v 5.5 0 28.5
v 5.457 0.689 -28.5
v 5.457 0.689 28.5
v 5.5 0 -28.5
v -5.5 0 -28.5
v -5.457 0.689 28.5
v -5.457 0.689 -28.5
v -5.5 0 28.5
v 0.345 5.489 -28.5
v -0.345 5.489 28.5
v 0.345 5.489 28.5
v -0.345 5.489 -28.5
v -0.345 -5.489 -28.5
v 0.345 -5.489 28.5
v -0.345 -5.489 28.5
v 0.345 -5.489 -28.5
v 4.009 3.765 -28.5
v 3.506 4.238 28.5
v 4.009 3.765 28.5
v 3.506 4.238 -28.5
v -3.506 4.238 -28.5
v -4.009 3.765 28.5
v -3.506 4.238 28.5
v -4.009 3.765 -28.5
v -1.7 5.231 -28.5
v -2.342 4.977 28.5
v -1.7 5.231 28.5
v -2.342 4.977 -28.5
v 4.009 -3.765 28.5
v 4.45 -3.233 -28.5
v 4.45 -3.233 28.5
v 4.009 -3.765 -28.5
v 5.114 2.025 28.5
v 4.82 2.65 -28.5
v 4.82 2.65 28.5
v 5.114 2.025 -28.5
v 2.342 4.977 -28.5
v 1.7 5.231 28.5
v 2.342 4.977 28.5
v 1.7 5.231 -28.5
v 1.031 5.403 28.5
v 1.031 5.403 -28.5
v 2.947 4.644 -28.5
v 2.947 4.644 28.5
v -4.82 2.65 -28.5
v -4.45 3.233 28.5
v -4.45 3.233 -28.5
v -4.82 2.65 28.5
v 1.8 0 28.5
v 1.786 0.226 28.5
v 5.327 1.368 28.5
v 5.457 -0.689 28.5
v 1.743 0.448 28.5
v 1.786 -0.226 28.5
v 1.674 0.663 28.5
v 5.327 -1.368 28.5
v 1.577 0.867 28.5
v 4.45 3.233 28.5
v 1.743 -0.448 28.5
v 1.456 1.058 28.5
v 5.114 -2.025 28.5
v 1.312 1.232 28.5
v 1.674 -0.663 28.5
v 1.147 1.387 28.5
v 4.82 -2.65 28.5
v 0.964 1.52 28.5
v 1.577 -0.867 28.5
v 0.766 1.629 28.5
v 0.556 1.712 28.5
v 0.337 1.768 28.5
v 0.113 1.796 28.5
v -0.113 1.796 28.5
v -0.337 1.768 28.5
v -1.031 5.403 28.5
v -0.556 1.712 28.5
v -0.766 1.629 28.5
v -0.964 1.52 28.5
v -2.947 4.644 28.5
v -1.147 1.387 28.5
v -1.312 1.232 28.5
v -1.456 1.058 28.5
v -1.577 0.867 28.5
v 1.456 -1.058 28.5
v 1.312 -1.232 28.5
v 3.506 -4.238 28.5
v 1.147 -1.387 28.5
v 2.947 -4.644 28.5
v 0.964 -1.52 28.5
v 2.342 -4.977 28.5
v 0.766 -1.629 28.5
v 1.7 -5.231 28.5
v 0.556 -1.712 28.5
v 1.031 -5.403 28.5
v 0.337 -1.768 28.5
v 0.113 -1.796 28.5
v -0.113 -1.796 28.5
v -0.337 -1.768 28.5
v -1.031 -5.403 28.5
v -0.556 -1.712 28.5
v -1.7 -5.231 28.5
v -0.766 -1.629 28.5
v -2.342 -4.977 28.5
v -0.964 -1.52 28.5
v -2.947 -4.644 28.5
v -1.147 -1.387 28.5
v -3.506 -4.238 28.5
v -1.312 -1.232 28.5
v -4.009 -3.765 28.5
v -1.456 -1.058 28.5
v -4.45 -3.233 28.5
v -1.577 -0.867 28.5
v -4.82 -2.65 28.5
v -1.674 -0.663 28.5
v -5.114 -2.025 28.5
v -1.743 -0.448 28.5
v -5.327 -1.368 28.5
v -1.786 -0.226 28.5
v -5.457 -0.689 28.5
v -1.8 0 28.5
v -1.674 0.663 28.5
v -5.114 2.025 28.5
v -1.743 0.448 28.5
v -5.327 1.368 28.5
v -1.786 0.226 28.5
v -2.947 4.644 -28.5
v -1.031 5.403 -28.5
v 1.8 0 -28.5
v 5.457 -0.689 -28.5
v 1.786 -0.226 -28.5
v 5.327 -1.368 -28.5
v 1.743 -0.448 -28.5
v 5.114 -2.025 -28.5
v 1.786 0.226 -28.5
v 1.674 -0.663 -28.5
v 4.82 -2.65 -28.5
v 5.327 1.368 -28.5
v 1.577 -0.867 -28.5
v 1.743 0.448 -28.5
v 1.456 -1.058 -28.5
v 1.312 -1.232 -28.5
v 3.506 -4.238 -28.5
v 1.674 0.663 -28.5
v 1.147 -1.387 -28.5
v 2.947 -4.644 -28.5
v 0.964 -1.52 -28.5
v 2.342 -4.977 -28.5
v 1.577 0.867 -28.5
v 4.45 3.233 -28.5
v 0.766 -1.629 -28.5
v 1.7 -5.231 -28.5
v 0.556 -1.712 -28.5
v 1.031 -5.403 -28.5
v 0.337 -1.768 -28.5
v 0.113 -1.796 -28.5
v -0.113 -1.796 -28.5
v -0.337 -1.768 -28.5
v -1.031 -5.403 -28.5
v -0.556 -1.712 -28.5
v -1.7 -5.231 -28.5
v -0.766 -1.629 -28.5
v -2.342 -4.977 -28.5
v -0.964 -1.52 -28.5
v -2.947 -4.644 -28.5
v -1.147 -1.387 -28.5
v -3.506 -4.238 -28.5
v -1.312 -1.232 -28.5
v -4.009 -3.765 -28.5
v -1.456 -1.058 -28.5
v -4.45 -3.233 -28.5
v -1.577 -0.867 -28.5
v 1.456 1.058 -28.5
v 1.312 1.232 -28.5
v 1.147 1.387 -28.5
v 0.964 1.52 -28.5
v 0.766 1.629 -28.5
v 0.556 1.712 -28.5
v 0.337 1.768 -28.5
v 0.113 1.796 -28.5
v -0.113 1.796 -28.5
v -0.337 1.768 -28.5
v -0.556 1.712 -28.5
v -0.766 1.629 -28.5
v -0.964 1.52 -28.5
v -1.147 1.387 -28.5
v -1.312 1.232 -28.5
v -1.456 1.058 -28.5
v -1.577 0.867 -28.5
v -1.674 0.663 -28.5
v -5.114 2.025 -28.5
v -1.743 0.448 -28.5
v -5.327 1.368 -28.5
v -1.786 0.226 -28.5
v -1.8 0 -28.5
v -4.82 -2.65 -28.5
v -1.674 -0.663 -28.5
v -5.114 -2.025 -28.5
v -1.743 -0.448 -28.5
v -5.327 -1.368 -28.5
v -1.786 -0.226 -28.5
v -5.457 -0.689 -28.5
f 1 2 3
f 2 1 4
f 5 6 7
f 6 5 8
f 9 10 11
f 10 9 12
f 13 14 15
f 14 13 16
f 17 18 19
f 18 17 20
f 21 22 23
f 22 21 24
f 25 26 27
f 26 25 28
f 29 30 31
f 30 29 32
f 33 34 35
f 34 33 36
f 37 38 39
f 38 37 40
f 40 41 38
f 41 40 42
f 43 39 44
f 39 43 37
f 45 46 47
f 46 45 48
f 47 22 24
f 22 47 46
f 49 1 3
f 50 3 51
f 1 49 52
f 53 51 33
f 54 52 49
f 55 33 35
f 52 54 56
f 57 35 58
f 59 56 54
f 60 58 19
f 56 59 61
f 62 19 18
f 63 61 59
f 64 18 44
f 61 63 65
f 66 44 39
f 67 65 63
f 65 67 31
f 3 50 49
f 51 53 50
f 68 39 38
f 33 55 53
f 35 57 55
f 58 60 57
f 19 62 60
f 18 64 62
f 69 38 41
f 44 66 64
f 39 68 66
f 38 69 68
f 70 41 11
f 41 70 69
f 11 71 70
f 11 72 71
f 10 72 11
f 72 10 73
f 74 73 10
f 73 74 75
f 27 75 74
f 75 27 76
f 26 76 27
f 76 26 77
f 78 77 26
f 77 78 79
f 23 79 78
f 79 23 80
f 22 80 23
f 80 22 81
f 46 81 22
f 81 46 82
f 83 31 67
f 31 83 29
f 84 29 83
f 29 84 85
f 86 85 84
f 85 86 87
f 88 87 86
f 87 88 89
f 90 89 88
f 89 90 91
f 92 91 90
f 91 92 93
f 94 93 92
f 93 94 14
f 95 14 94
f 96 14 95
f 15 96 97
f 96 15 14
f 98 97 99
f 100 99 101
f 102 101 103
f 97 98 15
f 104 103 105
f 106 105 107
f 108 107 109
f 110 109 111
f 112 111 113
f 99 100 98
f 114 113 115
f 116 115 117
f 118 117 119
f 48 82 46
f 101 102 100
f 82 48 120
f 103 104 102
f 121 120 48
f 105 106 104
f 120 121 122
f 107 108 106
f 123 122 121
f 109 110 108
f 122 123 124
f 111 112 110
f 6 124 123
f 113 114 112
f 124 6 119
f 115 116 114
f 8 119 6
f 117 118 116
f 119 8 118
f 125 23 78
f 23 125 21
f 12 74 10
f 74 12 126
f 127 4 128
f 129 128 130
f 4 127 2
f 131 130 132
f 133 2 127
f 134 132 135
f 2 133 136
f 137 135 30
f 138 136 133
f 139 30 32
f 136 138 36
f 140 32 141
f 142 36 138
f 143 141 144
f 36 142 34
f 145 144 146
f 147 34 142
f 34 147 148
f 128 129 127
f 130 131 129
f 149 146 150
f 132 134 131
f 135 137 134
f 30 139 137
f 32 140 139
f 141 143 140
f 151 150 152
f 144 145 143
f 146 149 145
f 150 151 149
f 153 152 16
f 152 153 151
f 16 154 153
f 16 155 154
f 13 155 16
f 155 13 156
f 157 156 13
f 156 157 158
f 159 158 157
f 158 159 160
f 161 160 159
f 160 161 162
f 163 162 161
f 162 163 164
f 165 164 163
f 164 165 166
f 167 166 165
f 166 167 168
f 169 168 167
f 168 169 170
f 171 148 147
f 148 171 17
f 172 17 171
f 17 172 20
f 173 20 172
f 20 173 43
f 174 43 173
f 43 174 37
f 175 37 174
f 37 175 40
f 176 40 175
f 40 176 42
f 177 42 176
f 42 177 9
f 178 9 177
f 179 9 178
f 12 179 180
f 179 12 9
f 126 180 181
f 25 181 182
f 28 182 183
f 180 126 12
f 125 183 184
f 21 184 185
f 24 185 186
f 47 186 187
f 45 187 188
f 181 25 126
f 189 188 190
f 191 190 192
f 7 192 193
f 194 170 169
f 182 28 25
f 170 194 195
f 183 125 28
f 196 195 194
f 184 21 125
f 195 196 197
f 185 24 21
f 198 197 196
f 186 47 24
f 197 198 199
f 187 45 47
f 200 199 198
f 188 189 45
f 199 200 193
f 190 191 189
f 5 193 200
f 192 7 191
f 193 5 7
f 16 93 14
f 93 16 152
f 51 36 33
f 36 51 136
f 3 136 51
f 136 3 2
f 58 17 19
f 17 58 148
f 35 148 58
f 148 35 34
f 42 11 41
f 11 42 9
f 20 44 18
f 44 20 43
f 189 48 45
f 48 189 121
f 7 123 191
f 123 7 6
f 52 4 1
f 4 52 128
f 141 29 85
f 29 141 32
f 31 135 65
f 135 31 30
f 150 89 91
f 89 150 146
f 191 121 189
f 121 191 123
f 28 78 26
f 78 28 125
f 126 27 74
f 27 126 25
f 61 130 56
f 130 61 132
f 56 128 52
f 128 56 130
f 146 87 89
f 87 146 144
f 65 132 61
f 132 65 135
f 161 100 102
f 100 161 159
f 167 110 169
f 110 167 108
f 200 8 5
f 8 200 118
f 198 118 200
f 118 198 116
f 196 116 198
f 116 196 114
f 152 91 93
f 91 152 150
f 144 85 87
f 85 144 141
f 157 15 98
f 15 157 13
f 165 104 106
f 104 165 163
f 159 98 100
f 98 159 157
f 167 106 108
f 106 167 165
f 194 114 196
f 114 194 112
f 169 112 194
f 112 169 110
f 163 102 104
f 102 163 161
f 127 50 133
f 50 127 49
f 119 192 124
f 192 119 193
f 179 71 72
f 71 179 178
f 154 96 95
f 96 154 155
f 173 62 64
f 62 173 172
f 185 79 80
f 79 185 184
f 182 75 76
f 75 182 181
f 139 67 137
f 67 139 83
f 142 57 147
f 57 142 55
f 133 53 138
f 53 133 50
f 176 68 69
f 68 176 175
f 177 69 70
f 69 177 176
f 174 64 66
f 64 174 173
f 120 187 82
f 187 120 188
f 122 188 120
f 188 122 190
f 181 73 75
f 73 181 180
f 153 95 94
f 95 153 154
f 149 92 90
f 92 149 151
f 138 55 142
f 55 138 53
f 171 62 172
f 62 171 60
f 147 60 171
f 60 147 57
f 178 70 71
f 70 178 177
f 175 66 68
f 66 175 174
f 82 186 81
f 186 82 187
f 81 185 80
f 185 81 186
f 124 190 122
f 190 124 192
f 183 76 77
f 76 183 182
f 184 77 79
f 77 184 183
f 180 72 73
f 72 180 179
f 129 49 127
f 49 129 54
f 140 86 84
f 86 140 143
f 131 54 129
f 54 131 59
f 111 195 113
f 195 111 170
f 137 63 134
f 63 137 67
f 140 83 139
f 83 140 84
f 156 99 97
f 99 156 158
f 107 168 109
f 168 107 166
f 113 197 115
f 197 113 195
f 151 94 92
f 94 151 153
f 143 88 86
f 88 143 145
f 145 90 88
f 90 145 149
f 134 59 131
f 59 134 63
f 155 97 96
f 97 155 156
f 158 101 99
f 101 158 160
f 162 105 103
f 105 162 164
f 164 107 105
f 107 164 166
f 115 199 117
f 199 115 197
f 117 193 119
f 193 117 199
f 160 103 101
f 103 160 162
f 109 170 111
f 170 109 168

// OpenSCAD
$fn = 50;


difference() {
	union() {
		translate(v = [0, 0, -28.5000000000]) {
			cylinder(h = 57, r = 5.5000000000);
		}
	}
	union() {
		translate(v = [0, 0, -100.0000000000]) {
			cylinder(h = 200, r = 1.8000000000);
		}
	}
}
